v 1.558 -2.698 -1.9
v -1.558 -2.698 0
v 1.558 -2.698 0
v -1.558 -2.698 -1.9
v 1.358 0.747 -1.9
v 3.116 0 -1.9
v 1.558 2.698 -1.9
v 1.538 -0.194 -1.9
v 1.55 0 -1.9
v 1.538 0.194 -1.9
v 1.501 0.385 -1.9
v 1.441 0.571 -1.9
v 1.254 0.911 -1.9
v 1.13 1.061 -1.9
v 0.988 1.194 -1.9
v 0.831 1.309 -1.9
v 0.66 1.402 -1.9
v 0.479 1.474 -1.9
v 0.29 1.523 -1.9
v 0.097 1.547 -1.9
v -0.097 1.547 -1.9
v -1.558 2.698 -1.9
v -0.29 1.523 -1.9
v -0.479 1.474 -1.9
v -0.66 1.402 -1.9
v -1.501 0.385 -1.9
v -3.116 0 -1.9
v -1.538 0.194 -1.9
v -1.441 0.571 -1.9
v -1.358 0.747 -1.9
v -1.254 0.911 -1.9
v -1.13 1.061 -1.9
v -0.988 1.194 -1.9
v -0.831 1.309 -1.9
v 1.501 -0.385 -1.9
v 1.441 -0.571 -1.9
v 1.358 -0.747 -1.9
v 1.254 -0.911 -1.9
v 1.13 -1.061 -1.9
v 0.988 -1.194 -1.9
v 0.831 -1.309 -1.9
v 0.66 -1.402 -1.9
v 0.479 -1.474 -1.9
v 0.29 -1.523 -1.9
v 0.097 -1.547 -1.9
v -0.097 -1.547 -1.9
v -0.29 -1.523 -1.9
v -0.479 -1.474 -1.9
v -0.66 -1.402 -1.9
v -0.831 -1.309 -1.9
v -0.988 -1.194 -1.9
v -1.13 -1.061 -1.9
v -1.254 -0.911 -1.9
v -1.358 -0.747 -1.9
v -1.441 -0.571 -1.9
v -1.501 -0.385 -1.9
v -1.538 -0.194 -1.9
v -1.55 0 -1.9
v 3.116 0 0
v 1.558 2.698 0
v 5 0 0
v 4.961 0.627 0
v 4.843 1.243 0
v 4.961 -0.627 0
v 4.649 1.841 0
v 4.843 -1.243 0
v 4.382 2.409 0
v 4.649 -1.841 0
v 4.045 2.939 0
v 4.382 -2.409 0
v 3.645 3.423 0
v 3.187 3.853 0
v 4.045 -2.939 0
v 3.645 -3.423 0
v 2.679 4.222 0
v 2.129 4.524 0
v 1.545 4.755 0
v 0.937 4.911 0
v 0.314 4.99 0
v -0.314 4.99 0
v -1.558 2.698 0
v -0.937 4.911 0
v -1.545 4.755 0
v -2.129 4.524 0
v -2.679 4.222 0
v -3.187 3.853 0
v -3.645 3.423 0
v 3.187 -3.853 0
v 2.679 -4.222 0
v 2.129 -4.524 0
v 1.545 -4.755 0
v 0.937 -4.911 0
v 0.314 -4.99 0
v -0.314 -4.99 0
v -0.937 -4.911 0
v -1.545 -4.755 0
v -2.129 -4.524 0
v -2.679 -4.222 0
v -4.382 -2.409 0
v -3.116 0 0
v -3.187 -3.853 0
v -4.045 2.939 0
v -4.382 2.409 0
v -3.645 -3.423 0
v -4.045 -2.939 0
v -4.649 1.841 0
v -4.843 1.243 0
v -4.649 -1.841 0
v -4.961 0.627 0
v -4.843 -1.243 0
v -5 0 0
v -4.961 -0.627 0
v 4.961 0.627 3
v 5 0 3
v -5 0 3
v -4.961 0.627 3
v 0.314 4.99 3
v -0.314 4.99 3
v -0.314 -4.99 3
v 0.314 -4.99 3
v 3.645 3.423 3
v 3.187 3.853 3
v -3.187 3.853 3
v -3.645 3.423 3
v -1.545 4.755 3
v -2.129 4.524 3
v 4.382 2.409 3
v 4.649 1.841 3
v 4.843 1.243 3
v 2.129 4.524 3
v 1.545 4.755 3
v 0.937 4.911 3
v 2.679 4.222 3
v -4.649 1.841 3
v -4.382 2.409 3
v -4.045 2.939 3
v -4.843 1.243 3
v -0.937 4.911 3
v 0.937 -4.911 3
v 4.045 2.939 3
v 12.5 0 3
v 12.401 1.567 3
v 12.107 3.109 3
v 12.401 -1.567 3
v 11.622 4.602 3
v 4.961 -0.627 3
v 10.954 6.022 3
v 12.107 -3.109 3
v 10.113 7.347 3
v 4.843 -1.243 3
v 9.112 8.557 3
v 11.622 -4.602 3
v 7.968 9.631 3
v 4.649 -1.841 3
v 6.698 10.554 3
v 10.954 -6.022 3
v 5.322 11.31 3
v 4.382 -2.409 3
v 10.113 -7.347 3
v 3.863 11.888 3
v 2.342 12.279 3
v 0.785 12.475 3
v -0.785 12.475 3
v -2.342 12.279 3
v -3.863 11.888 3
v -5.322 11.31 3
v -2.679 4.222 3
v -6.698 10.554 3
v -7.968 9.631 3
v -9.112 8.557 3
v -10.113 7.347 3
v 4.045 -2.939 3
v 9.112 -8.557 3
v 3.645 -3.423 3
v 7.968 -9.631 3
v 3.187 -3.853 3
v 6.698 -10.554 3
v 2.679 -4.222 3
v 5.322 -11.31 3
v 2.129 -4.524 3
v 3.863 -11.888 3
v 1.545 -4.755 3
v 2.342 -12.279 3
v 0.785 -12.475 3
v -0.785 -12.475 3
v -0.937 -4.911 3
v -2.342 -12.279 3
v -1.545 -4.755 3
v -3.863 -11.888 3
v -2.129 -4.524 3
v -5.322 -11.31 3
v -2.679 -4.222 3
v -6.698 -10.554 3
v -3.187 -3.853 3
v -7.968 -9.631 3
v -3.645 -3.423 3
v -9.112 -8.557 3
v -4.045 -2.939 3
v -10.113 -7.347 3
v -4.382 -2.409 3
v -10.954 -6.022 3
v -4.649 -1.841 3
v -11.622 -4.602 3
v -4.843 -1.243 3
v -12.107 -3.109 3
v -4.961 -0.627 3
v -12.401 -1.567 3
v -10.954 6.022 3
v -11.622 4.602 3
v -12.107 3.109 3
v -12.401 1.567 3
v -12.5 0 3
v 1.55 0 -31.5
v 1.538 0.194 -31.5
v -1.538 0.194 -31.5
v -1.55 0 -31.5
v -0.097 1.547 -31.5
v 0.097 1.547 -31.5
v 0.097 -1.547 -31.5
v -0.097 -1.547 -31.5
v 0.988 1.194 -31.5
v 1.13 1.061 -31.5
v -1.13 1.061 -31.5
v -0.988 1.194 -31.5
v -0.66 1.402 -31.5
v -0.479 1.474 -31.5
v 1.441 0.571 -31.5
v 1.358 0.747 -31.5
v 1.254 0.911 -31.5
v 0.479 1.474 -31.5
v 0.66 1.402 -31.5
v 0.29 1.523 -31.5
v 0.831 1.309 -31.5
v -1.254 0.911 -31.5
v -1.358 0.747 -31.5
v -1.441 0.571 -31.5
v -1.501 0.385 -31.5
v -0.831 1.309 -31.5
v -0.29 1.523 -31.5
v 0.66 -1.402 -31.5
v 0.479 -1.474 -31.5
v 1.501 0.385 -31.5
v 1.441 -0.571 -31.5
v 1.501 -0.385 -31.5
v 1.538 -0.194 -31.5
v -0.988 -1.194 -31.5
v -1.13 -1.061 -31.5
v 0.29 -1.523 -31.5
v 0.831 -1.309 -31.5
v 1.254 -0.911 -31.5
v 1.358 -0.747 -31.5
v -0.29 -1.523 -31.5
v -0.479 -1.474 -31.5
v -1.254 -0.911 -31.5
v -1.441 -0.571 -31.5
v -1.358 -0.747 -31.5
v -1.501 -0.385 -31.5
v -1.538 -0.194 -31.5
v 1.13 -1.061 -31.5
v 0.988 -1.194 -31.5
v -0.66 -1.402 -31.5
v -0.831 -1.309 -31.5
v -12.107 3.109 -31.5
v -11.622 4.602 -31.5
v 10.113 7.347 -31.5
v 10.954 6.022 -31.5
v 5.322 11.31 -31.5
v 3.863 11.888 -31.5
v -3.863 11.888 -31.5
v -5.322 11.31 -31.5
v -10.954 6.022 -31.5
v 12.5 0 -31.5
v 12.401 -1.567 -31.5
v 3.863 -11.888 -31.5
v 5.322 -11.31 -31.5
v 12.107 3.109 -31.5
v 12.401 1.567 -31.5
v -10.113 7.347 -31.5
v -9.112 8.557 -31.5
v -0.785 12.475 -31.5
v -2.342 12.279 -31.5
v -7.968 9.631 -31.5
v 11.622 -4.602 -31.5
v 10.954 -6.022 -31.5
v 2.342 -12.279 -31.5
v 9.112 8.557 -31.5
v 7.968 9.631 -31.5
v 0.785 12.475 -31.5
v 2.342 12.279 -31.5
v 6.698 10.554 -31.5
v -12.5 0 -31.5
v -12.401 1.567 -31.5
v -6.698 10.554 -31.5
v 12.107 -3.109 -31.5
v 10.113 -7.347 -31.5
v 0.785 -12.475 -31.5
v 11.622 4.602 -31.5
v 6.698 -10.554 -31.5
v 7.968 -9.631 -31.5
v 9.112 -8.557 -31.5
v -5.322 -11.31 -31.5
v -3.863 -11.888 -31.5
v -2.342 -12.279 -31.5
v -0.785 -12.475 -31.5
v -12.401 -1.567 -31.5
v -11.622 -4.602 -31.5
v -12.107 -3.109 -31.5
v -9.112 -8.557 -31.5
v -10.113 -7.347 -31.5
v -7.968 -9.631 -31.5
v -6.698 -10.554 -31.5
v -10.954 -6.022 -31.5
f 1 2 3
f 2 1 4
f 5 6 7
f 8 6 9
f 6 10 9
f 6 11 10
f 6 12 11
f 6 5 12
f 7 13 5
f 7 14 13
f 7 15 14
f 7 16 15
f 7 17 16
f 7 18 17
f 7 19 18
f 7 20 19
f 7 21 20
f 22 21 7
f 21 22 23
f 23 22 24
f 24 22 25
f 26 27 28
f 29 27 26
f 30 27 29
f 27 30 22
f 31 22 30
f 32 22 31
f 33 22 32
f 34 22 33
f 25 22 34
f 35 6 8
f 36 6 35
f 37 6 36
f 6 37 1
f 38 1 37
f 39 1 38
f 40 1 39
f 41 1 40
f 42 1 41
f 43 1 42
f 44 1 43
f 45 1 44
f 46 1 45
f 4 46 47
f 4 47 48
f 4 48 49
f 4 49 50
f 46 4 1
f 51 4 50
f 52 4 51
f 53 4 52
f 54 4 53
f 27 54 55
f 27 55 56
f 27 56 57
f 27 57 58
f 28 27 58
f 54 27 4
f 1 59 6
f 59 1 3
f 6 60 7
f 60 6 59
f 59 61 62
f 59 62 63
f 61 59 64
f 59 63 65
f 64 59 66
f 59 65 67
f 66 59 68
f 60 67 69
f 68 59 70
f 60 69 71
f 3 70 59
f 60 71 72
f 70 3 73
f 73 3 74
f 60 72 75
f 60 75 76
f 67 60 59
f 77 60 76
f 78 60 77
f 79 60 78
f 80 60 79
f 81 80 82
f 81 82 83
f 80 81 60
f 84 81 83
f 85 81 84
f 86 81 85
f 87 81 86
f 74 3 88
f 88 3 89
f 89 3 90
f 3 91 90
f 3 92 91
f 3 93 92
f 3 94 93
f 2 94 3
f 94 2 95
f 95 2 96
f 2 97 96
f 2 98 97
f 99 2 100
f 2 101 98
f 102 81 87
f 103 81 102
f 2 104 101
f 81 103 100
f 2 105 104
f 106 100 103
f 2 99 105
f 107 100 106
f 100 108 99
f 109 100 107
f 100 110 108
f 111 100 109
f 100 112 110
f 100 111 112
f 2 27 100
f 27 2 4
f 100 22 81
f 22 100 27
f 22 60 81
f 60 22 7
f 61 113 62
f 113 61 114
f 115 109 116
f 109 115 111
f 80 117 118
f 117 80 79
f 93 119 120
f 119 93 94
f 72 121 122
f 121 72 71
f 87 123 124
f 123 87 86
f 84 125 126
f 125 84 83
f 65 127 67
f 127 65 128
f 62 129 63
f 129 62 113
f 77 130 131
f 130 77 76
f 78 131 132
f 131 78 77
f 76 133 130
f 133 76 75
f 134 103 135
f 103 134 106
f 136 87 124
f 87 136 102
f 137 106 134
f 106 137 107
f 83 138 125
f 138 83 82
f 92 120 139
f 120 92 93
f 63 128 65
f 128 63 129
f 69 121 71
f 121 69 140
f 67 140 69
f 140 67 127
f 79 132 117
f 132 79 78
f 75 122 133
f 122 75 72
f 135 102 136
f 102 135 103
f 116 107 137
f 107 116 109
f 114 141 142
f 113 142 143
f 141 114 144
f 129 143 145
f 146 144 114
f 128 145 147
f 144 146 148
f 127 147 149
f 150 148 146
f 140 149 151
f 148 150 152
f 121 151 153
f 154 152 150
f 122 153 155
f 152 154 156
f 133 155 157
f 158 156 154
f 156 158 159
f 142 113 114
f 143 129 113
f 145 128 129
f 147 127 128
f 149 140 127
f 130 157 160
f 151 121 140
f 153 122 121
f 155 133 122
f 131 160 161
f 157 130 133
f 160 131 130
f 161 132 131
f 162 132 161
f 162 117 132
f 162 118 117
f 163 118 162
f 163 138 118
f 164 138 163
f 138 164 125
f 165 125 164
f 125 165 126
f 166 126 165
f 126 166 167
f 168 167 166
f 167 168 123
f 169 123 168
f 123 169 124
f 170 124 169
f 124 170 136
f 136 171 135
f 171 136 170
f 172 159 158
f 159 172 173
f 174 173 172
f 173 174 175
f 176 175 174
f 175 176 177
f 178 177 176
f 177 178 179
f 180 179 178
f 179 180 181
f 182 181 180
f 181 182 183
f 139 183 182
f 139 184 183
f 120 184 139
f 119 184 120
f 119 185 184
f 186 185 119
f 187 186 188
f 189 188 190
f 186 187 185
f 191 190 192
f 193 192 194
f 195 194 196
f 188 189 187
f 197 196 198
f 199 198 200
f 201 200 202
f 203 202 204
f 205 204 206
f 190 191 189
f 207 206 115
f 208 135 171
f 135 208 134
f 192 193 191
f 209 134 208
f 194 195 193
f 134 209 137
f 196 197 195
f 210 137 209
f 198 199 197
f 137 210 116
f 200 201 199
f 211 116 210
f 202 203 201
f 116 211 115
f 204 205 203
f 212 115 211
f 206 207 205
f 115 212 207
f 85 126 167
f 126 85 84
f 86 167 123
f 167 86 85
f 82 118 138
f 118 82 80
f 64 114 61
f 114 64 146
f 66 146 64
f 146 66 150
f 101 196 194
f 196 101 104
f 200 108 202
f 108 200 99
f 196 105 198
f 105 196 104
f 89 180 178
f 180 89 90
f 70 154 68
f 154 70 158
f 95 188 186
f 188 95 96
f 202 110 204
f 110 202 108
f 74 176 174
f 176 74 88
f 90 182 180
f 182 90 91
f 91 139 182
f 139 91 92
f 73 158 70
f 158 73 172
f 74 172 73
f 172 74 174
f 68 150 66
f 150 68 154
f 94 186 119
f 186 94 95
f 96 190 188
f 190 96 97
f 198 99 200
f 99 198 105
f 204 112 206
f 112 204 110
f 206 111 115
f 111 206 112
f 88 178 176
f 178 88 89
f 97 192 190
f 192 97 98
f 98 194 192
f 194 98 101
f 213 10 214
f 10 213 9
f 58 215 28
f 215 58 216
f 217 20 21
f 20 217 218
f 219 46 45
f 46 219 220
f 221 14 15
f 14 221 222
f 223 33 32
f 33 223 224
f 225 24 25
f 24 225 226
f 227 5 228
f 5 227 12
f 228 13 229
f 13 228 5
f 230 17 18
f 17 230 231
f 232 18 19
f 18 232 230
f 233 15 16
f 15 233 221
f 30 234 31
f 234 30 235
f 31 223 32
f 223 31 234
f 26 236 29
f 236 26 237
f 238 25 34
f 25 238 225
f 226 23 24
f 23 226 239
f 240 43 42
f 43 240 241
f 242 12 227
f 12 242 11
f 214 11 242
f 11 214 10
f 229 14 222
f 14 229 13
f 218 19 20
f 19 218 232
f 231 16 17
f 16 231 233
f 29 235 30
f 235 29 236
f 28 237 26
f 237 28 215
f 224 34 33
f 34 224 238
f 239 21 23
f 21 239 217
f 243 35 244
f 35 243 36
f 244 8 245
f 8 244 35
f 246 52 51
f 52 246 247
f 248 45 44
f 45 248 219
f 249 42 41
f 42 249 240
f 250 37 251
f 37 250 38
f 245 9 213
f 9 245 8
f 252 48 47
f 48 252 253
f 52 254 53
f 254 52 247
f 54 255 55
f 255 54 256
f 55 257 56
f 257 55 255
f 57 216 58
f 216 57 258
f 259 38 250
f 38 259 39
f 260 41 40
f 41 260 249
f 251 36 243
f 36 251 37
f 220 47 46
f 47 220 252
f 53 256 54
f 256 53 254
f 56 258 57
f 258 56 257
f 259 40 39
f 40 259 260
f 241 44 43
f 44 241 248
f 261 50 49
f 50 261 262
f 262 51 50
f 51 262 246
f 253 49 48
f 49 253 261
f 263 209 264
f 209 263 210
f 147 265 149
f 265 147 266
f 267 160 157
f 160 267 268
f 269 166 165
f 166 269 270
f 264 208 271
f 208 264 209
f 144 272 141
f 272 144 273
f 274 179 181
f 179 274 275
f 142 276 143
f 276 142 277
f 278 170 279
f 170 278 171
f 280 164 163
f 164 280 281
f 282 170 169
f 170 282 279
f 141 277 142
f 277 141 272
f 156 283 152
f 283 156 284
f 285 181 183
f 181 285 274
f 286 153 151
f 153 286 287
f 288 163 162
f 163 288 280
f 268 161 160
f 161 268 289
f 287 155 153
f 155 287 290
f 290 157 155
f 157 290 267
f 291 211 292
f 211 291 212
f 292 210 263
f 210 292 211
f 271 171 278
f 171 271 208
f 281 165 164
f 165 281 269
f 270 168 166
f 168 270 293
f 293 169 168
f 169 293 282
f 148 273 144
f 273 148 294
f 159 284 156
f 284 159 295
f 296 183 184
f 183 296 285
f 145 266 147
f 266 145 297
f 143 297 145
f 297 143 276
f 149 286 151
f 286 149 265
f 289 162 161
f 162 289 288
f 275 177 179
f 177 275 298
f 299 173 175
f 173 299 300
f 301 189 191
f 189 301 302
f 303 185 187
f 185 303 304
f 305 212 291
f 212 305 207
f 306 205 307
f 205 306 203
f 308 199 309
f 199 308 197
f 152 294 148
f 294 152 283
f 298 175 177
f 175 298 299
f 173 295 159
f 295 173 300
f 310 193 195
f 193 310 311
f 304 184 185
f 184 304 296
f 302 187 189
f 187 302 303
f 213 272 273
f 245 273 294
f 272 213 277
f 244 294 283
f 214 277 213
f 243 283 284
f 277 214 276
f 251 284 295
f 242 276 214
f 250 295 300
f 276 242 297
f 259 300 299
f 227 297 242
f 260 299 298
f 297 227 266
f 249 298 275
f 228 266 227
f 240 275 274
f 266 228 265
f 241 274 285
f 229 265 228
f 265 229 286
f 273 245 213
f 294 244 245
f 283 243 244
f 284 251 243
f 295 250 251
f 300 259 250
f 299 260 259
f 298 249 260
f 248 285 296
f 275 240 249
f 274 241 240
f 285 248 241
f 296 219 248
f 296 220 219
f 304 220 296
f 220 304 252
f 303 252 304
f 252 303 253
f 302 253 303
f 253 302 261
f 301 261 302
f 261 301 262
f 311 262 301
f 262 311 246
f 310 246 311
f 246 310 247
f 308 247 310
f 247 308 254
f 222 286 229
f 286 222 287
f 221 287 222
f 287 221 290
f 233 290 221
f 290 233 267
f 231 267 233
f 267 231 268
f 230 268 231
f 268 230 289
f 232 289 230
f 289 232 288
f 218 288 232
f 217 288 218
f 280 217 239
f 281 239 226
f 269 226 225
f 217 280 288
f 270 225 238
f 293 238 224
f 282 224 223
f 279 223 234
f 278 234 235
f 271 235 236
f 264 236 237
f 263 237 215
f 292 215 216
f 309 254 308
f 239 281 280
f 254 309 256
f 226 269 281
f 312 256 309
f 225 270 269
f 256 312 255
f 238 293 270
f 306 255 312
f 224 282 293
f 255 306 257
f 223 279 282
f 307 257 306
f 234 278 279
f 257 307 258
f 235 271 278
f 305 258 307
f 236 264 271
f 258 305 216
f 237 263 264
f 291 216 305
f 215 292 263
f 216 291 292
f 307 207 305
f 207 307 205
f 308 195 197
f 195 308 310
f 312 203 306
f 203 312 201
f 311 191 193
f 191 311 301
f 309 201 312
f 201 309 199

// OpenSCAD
$fn = 50;


difference() {
	union() {
		translate(v = [0, 0, -31.5000000000]) {
			cylinder(h = 34.5000000000, r = 12.5000000000);
		}
	}
	union() {
		translate(v = [0, 0, 0]) {
			rotate(a = [0, 0, 0]) {
				difference() {
					union() {
						translate(v = [0, 0, -1.9000000000]) {
							linear_extrude(height = 1.9000000000) {
								polygon(points = [[3.1158000000, 0.0000000000], [1.5579000000, 2.6983619531], [-1.5579000000, 2.6983619531], [-3.1158000000, 0.0000000000], [-1.5579000000, -2.6983619531], [1.5579000000, -2.6983619531]]);
							}
						}
					}
					union();
				}
			}
		}
		#cylinder(h = 3, r = 5.0000000000);
		#translate(v = [0, 0, -100.0000000000]) {
			cylinder(h = 200, r = 1.5500000000);
		}
	}
}
